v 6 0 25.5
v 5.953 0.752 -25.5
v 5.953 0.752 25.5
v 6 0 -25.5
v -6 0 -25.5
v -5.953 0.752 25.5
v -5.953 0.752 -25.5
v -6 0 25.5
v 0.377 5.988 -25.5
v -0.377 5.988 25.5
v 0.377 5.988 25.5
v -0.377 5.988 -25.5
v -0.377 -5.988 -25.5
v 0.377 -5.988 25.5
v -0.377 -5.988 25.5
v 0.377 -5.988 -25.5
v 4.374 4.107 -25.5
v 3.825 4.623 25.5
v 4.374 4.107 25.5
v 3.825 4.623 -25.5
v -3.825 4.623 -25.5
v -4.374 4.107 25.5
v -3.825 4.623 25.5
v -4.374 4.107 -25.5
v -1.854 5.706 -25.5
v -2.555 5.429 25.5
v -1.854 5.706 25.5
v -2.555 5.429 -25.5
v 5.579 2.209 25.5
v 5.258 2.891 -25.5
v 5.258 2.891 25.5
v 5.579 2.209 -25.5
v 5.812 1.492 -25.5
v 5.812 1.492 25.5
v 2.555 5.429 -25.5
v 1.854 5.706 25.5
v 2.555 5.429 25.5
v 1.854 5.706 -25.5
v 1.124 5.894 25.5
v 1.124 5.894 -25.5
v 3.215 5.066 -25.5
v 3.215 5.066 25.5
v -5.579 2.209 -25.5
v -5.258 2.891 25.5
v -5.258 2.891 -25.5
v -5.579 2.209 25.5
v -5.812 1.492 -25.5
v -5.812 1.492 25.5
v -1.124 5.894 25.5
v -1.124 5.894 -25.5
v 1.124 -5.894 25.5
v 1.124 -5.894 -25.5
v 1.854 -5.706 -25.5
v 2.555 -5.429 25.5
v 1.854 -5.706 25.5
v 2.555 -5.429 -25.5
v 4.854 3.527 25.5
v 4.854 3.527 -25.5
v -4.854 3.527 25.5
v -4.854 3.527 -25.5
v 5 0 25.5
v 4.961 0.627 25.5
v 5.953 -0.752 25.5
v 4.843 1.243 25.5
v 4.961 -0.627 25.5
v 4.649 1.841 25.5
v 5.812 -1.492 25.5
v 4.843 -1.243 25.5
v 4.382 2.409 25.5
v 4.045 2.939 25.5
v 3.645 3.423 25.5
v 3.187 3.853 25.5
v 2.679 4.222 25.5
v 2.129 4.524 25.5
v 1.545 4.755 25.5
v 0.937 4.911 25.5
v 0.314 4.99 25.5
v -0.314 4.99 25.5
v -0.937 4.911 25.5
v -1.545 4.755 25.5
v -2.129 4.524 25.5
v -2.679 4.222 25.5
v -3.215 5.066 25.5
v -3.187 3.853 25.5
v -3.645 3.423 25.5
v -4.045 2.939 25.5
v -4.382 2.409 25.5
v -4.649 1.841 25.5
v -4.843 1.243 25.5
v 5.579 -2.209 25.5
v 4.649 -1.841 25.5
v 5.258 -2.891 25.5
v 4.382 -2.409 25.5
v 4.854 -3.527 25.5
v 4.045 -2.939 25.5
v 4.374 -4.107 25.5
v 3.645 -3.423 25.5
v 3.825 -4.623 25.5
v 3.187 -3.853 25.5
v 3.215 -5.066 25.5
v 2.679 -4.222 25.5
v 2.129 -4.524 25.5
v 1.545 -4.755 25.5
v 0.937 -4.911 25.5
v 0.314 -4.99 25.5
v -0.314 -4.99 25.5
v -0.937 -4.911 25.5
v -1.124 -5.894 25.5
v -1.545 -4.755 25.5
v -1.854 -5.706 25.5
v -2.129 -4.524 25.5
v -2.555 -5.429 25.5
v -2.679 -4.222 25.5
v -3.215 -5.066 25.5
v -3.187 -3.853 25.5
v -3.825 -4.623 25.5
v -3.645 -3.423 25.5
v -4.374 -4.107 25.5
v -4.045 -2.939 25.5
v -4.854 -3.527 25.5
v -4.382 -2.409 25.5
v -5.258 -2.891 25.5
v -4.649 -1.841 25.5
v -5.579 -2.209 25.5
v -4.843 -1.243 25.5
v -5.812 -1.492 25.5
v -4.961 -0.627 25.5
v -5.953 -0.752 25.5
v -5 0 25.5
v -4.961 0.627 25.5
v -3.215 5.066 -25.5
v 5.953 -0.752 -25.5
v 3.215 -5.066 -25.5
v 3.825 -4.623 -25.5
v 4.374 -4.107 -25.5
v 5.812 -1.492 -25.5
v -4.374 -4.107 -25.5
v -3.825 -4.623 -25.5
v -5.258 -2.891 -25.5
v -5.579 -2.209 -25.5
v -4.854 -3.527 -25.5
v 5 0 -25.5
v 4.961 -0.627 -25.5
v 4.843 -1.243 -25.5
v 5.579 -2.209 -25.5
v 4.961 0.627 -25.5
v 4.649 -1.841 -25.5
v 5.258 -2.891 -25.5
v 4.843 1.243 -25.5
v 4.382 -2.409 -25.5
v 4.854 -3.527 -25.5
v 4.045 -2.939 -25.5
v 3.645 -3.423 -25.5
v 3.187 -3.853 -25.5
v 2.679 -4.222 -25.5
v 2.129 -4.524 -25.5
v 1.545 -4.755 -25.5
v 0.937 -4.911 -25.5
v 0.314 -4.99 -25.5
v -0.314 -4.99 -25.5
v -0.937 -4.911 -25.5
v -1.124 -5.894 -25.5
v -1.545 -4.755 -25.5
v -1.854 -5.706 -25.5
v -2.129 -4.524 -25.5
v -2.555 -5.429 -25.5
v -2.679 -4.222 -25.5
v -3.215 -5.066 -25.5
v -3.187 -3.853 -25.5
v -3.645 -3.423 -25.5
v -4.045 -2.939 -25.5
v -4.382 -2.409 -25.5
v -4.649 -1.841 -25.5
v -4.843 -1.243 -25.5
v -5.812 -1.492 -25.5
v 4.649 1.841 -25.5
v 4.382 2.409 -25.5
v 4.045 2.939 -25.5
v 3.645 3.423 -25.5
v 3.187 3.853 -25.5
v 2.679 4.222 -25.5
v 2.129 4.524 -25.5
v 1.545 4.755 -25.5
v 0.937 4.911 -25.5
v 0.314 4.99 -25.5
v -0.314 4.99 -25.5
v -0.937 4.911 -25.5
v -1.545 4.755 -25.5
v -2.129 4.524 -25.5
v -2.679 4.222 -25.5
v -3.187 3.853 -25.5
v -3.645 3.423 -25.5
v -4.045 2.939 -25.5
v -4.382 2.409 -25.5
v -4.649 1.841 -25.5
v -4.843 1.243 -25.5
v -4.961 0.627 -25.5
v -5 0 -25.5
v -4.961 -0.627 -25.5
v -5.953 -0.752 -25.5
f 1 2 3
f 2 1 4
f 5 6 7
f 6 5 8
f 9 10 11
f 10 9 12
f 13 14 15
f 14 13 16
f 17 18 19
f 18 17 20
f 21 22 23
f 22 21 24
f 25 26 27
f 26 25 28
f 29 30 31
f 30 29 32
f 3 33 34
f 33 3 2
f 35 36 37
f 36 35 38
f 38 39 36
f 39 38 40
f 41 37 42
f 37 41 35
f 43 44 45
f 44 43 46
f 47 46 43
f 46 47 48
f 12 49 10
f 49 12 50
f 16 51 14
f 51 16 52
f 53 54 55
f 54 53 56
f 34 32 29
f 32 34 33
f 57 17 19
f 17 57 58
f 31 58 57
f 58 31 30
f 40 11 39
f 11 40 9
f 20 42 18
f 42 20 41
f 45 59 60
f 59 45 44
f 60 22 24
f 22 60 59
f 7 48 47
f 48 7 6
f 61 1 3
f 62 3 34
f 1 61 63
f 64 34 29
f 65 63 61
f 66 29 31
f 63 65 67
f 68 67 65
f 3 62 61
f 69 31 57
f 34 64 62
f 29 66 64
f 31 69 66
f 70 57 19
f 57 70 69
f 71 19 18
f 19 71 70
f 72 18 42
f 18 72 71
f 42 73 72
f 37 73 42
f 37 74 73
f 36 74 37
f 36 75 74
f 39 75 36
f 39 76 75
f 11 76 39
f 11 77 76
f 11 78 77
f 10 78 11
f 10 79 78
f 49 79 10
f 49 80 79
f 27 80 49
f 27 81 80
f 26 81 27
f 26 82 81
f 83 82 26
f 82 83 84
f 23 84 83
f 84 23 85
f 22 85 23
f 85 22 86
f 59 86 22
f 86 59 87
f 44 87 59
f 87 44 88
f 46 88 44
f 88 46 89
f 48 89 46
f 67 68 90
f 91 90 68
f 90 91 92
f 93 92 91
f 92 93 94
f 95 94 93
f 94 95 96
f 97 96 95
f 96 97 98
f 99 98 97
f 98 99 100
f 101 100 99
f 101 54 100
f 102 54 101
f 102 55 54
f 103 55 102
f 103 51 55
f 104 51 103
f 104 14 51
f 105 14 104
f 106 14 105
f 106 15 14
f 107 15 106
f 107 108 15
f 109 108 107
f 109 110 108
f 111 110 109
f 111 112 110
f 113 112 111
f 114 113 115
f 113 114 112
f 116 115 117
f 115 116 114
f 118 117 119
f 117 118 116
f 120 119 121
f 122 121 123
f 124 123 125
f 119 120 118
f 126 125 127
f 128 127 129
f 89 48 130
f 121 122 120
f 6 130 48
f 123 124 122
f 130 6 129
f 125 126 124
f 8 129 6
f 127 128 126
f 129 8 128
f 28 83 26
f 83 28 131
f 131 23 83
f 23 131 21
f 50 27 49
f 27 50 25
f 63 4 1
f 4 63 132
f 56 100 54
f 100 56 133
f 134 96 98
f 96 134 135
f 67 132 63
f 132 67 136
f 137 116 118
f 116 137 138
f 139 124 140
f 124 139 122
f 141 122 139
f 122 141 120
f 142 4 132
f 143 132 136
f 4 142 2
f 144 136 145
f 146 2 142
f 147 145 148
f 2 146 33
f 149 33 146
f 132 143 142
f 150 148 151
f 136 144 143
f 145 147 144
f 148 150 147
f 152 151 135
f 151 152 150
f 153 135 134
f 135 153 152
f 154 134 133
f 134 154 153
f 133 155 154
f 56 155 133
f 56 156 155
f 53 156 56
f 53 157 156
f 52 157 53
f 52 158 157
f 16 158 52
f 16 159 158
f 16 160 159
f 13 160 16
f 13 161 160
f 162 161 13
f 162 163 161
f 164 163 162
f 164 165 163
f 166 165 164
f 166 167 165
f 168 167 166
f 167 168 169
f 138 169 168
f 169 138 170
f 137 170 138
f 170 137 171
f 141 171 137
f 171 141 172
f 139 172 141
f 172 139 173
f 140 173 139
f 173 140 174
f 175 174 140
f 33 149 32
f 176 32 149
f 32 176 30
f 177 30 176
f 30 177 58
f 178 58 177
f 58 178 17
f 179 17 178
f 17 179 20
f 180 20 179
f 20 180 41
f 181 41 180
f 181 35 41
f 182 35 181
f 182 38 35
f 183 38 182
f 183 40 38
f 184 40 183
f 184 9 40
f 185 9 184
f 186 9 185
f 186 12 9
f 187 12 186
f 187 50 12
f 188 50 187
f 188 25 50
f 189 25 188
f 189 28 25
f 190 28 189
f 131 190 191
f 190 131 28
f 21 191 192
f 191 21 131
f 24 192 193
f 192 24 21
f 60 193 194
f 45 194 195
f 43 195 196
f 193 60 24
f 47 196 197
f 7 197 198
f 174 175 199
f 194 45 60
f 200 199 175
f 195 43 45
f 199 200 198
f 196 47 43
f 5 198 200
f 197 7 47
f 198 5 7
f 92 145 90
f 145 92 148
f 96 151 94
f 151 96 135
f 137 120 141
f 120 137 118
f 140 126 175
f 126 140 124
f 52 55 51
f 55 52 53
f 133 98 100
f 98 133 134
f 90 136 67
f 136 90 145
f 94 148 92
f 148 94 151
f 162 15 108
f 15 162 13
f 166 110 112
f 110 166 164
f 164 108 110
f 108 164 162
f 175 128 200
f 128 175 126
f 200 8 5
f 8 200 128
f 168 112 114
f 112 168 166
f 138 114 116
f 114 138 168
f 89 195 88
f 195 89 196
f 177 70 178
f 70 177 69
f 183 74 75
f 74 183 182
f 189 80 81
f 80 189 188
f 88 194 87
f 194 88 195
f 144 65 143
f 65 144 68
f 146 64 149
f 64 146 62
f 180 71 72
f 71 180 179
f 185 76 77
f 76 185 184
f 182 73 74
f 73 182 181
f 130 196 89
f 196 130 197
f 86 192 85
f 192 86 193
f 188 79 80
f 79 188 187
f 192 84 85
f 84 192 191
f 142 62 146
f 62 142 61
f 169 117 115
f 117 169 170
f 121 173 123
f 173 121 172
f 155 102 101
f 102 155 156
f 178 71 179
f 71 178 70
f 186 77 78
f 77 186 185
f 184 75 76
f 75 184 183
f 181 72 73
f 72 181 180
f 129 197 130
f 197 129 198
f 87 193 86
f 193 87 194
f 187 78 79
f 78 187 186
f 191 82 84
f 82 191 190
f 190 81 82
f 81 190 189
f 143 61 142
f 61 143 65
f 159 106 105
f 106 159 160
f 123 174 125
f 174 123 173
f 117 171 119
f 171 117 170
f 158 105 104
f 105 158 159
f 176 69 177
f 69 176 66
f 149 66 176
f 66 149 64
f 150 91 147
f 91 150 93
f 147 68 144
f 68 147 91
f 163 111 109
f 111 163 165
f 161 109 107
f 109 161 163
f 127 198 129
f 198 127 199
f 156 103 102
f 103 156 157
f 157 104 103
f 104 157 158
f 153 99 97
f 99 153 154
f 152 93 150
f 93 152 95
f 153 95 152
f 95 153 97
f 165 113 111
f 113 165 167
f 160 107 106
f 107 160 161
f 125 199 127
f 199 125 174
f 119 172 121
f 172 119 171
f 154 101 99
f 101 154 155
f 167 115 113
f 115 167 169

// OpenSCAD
$fn = 50;


difference() {
	union() {
		translate(v = [0, 0, -25.5000000000]) {
			cylinder(h = 51, r = 6.0000000000);
		}
	}
	union() {
		translate(v = [0, 0, -100.0000000000]) {
			cylinder(h = 200, r = 5);
		}
	}
}
